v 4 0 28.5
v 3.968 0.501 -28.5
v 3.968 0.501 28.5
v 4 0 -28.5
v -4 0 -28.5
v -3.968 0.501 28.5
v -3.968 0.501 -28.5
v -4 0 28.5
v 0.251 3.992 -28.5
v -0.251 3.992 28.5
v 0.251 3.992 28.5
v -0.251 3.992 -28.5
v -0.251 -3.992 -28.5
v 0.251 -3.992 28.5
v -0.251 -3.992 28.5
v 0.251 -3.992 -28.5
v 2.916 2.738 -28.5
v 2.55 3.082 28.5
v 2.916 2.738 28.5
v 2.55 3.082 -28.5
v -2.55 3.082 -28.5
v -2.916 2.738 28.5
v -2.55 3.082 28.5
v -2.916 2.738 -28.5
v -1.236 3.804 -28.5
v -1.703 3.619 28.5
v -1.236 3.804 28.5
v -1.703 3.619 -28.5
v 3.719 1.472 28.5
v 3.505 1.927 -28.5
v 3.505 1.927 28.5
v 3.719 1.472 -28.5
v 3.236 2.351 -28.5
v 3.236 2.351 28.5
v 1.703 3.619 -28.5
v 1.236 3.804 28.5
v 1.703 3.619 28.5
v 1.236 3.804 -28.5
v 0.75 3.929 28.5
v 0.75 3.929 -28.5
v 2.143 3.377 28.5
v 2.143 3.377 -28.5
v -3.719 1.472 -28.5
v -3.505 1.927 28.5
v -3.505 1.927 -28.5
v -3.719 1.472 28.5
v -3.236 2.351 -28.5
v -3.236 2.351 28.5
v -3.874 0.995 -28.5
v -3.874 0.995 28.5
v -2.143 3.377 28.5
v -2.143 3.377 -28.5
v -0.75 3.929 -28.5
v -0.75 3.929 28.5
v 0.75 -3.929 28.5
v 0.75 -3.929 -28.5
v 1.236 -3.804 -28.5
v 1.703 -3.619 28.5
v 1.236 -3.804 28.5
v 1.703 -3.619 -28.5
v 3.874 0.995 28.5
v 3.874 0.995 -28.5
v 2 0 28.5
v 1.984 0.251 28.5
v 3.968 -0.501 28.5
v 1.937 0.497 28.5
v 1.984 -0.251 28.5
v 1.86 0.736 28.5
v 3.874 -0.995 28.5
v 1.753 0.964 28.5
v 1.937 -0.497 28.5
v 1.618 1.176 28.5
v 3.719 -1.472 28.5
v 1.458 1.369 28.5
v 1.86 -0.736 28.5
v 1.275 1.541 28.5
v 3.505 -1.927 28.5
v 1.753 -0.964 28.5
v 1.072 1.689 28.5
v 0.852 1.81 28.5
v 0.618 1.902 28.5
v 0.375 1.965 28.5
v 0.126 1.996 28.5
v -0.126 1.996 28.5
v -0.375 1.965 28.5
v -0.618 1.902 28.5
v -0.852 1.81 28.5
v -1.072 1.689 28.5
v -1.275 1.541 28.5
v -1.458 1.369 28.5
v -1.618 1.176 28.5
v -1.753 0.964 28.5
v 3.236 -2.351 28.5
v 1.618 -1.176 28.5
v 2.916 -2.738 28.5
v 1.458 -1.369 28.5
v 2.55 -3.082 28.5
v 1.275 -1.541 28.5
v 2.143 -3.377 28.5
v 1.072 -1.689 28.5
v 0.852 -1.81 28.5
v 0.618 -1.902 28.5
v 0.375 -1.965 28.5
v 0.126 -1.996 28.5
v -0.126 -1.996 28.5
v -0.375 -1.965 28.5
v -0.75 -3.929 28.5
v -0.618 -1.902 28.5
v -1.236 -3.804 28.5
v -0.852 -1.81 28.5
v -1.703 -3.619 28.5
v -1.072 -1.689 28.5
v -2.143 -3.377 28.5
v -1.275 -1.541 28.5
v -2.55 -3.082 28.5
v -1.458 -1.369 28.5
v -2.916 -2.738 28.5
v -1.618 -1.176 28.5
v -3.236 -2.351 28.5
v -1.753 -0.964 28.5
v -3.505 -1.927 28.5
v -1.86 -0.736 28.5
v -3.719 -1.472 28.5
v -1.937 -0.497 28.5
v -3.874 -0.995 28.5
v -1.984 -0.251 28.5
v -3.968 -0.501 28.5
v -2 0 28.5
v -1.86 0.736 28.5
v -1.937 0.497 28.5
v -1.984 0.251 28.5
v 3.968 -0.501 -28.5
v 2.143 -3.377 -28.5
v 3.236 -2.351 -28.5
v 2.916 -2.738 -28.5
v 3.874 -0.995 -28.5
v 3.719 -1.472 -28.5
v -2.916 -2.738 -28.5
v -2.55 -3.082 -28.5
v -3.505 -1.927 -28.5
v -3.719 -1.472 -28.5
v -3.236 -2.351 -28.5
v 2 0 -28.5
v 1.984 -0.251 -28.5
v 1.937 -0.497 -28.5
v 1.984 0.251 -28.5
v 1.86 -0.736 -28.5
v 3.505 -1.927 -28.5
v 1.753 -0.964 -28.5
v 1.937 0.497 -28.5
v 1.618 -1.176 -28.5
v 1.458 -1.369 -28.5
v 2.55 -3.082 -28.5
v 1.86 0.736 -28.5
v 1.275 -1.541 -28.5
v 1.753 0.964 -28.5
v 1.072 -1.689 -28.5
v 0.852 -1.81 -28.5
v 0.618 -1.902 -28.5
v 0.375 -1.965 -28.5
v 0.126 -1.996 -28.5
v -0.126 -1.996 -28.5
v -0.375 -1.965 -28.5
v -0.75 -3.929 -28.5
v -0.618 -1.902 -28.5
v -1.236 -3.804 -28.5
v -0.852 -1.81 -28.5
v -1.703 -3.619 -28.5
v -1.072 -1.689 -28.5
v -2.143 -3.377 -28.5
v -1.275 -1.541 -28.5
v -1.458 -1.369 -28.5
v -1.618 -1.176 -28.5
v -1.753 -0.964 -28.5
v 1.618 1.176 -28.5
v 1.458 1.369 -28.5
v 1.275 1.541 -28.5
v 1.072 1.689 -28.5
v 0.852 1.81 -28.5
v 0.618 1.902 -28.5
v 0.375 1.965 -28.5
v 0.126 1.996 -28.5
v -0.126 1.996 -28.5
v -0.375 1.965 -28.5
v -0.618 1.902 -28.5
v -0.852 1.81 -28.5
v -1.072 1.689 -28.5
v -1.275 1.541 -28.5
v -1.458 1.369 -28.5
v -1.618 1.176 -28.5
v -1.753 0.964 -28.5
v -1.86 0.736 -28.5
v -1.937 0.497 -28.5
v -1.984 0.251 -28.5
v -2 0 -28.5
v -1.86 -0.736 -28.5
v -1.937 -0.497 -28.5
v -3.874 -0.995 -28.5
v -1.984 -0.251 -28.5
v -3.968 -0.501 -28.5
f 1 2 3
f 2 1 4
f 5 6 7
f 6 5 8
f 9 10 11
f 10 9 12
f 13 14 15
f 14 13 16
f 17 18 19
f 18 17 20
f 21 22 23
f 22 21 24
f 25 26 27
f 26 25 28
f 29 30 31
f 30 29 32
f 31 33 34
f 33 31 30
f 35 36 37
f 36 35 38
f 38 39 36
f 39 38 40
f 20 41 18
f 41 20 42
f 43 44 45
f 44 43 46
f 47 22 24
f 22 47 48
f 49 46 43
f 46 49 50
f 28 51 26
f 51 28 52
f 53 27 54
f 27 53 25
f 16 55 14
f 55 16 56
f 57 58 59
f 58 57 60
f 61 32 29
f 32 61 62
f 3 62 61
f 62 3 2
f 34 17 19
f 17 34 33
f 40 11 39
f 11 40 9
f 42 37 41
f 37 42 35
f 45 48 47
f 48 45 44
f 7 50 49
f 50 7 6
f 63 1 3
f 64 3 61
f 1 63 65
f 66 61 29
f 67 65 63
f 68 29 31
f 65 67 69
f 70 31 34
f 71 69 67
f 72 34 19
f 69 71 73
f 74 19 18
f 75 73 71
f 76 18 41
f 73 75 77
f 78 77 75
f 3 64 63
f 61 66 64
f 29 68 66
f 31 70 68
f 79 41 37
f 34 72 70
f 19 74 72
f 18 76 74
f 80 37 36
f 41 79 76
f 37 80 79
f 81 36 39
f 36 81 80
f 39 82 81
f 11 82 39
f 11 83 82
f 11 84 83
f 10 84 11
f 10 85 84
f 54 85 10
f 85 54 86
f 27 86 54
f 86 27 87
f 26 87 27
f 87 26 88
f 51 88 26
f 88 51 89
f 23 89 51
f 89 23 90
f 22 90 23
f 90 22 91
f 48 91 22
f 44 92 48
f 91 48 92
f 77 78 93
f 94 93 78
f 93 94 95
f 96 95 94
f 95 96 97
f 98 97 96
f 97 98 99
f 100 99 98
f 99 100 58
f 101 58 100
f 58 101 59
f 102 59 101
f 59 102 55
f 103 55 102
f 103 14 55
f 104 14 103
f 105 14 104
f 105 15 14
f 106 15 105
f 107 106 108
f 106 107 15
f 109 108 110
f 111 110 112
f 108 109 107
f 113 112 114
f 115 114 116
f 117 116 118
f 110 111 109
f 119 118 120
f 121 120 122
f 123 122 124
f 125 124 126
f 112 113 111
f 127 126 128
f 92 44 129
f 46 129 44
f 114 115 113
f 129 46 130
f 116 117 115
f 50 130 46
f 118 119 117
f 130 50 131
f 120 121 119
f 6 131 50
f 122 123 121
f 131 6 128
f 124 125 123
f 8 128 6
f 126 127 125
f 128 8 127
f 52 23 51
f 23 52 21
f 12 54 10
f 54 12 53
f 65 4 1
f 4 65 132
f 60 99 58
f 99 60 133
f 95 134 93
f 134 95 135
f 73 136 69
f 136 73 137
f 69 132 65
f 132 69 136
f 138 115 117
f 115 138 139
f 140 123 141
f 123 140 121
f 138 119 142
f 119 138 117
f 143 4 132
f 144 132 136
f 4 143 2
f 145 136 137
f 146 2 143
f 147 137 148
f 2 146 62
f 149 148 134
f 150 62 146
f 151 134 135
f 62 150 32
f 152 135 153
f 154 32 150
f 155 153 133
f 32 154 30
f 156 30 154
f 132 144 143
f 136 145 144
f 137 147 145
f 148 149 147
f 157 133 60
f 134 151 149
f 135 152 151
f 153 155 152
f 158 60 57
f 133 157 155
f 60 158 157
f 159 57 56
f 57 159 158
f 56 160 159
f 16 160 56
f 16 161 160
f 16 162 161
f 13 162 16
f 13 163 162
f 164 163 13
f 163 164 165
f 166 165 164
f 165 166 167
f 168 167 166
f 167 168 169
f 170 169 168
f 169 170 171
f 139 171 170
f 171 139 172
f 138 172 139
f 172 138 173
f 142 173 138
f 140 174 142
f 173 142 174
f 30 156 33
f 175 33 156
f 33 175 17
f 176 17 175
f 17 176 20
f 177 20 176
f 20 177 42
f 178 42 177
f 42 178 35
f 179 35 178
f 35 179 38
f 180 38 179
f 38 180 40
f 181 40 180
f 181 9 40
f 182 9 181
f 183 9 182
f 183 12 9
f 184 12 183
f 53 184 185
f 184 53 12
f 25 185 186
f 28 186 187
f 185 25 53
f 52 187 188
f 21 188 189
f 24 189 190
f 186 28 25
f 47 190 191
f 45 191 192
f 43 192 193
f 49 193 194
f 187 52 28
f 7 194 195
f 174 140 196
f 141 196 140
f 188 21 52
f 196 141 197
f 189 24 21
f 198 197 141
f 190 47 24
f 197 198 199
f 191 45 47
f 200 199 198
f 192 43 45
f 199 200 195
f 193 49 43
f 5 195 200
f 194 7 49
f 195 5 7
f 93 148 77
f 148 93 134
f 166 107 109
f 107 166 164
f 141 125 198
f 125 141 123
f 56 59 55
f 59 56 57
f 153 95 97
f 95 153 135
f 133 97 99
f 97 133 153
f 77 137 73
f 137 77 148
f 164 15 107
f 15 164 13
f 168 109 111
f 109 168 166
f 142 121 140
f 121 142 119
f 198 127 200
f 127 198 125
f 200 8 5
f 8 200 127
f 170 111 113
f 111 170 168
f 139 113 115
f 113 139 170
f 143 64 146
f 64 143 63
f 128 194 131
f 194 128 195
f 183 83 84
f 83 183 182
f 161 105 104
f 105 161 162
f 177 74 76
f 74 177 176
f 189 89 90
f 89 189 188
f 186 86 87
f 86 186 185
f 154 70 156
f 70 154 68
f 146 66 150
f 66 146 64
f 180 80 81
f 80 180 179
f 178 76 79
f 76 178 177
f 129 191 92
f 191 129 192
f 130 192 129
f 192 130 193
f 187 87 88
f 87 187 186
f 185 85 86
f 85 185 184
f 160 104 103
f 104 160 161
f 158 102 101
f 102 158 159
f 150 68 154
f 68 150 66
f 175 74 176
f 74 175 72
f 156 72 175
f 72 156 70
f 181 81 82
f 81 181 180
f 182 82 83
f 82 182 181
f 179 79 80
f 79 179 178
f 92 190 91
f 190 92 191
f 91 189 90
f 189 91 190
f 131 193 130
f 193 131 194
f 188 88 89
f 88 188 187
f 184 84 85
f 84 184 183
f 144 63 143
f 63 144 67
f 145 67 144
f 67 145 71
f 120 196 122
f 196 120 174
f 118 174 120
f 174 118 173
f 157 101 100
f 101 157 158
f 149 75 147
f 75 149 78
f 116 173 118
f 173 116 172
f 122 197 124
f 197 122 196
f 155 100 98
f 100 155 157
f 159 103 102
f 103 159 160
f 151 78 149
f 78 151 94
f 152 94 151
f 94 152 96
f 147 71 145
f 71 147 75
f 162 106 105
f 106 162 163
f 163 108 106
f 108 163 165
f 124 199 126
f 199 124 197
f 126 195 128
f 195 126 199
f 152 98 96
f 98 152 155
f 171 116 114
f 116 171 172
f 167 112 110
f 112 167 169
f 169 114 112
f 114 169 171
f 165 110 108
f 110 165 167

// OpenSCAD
$fn = 50;


difference() {
	union() {
		translate(v = [0, 0, -28.5000000000]) {
			cylinder(h = 57, r = 4.0000000000);
		}
	}
	union() {
		translate(v = [0, 0, -100.0000000000]) {
			cylinder(h = 200, r = 2);
		}
	}
}
